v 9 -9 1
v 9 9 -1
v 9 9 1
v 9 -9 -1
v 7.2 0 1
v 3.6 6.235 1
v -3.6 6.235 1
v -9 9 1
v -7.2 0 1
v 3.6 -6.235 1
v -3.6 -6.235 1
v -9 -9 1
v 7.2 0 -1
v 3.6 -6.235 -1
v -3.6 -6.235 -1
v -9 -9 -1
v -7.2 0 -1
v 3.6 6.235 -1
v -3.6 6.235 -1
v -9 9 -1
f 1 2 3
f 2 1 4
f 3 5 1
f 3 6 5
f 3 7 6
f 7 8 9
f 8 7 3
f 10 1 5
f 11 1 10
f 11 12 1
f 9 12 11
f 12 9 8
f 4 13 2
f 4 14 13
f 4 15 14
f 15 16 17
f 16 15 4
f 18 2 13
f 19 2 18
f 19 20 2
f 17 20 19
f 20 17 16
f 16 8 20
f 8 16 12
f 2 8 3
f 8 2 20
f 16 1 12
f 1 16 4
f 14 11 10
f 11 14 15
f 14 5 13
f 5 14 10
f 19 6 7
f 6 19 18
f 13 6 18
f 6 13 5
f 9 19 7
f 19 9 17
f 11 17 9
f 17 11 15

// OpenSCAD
difference() {
     cube([18, 18, 2], center=true);
     translate([0,0,-1.1]) cylinder(h=2.2, d=14.4, $fn = 6);
}
